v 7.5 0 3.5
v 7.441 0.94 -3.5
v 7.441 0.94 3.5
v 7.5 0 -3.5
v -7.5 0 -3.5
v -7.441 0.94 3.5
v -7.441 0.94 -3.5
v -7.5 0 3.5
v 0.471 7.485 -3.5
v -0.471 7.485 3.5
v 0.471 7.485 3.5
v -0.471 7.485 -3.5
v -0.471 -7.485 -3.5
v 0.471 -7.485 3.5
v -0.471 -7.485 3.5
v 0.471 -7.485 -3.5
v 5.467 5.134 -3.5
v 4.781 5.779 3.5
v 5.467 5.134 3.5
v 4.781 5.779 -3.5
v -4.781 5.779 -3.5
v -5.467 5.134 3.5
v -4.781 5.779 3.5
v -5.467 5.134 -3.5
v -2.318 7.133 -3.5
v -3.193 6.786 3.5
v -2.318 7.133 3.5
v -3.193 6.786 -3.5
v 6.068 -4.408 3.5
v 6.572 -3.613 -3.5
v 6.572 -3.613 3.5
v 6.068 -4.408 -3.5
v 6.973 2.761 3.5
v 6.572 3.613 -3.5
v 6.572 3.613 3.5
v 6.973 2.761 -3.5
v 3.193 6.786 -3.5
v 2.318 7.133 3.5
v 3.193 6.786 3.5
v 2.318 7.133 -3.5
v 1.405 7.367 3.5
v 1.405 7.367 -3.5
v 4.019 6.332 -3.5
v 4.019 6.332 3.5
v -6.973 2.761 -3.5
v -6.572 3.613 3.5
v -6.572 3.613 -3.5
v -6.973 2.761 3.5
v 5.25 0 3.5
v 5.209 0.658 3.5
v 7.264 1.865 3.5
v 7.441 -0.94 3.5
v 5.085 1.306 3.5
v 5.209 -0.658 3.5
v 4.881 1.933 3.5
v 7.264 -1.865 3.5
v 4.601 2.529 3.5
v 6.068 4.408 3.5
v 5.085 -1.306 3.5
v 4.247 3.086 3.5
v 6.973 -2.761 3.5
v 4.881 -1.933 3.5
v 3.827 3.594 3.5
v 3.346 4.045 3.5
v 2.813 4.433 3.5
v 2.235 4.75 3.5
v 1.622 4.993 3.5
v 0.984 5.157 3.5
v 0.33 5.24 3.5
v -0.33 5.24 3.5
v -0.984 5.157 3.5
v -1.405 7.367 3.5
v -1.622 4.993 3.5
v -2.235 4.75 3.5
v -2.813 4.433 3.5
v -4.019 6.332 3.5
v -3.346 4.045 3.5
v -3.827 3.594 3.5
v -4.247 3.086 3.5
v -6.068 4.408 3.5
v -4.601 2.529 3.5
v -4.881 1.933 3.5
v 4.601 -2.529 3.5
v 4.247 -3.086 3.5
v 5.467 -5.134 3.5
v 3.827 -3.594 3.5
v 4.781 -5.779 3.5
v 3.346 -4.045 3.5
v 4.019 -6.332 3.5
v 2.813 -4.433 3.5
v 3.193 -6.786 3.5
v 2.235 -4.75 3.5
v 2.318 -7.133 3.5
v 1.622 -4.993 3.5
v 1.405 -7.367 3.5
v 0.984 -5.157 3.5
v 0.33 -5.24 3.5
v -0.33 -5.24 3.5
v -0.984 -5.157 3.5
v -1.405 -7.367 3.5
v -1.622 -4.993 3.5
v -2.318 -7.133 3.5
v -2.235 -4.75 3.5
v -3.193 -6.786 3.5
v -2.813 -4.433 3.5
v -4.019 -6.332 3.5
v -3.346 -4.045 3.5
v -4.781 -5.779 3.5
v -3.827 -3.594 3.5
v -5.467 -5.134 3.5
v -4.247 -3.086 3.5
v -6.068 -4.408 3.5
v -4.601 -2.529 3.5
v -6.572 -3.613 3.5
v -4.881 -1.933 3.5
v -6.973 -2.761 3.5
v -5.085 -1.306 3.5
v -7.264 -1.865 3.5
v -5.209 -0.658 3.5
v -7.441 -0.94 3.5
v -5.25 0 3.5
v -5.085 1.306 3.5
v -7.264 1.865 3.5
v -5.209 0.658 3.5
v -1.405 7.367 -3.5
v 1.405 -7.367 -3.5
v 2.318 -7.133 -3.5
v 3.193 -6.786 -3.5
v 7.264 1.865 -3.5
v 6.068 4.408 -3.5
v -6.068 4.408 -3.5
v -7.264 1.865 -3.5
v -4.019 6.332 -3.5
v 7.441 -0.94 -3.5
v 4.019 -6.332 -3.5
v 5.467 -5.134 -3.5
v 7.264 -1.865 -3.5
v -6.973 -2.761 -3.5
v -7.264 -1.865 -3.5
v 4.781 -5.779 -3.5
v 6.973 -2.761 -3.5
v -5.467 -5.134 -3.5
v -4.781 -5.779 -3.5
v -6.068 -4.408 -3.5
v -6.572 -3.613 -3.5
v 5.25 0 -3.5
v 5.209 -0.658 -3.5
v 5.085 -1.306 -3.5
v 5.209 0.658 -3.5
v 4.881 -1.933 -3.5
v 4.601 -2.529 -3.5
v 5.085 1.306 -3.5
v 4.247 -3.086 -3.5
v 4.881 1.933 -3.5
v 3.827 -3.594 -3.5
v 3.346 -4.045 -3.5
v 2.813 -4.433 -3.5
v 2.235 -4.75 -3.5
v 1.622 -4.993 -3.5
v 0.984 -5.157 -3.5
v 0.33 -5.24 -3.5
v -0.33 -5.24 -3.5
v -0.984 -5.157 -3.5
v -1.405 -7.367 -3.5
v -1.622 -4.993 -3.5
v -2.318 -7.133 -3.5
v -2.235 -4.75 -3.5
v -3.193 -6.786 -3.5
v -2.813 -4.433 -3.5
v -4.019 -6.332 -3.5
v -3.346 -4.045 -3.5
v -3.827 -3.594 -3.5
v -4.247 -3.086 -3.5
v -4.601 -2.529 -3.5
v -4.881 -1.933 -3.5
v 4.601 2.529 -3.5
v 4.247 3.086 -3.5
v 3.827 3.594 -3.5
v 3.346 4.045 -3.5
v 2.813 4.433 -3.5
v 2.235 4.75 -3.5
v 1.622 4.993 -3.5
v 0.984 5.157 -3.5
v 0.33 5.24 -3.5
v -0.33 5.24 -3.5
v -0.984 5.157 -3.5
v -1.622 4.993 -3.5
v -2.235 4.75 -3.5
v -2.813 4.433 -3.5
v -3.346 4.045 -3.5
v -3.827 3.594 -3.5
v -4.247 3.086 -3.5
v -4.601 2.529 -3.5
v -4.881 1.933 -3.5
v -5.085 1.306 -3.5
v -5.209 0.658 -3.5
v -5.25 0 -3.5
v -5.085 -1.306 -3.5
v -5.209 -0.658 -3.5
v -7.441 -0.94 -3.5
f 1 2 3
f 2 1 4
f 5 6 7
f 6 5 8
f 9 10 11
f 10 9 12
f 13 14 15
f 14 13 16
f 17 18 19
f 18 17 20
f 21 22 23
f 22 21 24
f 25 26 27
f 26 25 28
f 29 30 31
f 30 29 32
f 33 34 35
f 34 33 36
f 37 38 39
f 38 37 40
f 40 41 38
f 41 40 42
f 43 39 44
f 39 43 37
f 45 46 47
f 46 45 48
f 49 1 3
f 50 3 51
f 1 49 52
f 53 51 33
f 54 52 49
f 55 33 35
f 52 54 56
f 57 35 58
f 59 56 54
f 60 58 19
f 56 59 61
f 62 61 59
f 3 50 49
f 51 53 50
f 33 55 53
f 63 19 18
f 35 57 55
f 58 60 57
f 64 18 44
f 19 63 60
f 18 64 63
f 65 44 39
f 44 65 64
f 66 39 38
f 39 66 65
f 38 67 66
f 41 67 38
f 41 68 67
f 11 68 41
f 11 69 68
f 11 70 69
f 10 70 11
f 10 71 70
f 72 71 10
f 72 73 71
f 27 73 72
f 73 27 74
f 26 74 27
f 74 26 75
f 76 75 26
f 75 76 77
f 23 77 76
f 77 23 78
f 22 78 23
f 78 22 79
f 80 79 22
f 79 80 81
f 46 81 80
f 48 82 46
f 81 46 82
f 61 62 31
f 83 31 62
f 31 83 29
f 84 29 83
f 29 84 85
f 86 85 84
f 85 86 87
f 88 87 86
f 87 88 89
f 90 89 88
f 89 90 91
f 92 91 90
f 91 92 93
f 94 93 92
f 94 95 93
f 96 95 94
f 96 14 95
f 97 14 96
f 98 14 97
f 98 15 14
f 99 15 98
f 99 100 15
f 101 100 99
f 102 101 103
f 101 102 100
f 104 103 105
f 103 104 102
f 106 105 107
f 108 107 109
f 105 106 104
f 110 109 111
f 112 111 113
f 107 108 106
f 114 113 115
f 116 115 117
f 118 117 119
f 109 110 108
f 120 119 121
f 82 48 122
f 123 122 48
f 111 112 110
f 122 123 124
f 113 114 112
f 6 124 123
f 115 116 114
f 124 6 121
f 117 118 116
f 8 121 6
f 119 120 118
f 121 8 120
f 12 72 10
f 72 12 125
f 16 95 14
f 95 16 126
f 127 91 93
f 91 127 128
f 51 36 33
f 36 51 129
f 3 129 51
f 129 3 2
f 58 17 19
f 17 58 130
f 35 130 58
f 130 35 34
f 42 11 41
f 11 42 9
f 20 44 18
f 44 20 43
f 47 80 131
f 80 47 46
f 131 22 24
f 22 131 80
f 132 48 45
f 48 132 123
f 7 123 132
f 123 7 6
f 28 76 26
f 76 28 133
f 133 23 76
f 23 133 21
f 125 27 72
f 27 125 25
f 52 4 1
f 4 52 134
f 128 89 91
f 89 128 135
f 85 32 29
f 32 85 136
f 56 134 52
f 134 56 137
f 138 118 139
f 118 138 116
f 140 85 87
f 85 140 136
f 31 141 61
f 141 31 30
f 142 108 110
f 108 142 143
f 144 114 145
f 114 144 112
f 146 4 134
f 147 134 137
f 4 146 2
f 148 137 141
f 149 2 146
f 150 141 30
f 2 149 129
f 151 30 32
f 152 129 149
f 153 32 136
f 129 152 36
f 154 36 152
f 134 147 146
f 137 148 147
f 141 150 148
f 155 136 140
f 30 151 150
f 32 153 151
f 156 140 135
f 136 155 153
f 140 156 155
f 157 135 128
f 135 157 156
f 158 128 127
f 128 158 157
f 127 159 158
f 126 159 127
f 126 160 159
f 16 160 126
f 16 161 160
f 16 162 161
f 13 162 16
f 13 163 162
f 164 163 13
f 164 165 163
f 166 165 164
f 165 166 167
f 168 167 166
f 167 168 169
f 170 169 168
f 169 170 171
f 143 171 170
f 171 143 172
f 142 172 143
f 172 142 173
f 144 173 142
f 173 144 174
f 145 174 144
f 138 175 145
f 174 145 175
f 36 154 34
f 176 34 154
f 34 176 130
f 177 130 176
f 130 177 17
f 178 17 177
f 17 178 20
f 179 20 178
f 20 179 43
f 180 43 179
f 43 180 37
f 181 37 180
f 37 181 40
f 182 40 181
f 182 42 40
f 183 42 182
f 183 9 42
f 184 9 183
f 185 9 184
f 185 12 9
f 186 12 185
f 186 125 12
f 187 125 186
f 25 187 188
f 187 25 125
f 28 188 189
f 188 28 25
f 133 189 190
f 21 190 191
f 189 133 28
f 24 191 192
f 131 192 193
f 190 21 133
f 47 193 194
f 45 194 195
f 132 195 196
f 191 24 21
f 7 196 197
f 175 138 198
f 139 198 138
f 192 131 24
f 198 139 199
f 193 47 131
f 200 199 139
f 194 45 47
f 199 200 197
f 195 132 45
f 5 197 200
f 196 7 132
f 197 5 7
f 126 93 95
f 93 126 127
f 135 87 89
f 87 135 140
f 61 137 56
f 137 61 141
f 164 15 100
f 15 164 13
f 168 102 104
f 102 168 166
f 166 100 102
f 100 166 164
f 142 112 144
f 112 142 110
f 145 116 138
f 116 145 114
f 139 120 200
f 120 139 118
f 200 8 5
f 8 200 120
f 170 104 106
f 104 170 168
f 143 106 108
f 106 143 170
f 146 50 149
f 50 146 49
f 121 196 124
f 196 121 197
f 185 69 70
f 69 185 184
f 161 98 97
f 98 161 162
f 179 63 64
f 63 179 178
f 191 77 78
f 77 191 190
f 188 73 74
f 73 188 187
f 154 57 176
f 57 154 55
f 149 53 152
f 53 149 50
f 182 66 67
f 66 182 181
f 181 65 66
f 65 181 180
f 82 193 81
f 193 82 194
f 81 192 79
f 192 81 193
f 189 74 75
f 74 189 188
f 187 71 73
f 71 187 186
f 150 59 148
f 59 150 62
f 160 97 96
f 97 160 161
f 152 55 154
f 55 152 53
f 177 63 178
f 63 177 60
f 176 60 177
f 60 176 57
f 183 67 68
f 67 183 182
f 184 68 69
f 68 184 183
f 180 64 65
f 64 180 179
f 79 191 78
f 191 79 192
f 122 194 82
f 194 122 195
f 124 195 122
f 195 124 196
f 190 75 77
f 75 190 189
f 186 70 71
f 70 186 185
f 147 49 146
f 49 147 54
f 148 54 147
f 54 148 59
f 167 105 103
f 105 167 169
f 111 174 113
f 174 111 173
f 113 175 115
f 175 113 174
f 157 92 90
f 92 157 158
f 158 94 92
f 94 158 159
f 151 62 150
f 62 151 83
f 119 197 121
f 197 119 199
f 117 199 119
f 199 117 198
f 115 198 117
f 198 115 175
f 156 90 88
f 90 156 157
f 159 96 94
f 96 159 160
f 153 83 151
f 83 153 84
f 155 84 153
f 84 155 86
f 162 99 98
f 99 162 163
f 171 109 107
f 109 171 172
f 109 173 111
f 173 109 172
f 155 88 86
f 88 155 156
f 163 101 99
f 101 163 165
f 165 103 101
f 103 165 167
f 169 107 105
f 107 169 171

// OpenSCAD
$fn = 50;


difference() {
	union() {
		translate(v = [0, 0, -3.5000000000]) {
			cylinder(h = 7, r = 7.5000000000);
		}
	}
	union() {
		translate(v = [0, 0, -100.0000000000]) {
			cylinder(h = 200, r = 5.2500000000);
		}
	}
}
